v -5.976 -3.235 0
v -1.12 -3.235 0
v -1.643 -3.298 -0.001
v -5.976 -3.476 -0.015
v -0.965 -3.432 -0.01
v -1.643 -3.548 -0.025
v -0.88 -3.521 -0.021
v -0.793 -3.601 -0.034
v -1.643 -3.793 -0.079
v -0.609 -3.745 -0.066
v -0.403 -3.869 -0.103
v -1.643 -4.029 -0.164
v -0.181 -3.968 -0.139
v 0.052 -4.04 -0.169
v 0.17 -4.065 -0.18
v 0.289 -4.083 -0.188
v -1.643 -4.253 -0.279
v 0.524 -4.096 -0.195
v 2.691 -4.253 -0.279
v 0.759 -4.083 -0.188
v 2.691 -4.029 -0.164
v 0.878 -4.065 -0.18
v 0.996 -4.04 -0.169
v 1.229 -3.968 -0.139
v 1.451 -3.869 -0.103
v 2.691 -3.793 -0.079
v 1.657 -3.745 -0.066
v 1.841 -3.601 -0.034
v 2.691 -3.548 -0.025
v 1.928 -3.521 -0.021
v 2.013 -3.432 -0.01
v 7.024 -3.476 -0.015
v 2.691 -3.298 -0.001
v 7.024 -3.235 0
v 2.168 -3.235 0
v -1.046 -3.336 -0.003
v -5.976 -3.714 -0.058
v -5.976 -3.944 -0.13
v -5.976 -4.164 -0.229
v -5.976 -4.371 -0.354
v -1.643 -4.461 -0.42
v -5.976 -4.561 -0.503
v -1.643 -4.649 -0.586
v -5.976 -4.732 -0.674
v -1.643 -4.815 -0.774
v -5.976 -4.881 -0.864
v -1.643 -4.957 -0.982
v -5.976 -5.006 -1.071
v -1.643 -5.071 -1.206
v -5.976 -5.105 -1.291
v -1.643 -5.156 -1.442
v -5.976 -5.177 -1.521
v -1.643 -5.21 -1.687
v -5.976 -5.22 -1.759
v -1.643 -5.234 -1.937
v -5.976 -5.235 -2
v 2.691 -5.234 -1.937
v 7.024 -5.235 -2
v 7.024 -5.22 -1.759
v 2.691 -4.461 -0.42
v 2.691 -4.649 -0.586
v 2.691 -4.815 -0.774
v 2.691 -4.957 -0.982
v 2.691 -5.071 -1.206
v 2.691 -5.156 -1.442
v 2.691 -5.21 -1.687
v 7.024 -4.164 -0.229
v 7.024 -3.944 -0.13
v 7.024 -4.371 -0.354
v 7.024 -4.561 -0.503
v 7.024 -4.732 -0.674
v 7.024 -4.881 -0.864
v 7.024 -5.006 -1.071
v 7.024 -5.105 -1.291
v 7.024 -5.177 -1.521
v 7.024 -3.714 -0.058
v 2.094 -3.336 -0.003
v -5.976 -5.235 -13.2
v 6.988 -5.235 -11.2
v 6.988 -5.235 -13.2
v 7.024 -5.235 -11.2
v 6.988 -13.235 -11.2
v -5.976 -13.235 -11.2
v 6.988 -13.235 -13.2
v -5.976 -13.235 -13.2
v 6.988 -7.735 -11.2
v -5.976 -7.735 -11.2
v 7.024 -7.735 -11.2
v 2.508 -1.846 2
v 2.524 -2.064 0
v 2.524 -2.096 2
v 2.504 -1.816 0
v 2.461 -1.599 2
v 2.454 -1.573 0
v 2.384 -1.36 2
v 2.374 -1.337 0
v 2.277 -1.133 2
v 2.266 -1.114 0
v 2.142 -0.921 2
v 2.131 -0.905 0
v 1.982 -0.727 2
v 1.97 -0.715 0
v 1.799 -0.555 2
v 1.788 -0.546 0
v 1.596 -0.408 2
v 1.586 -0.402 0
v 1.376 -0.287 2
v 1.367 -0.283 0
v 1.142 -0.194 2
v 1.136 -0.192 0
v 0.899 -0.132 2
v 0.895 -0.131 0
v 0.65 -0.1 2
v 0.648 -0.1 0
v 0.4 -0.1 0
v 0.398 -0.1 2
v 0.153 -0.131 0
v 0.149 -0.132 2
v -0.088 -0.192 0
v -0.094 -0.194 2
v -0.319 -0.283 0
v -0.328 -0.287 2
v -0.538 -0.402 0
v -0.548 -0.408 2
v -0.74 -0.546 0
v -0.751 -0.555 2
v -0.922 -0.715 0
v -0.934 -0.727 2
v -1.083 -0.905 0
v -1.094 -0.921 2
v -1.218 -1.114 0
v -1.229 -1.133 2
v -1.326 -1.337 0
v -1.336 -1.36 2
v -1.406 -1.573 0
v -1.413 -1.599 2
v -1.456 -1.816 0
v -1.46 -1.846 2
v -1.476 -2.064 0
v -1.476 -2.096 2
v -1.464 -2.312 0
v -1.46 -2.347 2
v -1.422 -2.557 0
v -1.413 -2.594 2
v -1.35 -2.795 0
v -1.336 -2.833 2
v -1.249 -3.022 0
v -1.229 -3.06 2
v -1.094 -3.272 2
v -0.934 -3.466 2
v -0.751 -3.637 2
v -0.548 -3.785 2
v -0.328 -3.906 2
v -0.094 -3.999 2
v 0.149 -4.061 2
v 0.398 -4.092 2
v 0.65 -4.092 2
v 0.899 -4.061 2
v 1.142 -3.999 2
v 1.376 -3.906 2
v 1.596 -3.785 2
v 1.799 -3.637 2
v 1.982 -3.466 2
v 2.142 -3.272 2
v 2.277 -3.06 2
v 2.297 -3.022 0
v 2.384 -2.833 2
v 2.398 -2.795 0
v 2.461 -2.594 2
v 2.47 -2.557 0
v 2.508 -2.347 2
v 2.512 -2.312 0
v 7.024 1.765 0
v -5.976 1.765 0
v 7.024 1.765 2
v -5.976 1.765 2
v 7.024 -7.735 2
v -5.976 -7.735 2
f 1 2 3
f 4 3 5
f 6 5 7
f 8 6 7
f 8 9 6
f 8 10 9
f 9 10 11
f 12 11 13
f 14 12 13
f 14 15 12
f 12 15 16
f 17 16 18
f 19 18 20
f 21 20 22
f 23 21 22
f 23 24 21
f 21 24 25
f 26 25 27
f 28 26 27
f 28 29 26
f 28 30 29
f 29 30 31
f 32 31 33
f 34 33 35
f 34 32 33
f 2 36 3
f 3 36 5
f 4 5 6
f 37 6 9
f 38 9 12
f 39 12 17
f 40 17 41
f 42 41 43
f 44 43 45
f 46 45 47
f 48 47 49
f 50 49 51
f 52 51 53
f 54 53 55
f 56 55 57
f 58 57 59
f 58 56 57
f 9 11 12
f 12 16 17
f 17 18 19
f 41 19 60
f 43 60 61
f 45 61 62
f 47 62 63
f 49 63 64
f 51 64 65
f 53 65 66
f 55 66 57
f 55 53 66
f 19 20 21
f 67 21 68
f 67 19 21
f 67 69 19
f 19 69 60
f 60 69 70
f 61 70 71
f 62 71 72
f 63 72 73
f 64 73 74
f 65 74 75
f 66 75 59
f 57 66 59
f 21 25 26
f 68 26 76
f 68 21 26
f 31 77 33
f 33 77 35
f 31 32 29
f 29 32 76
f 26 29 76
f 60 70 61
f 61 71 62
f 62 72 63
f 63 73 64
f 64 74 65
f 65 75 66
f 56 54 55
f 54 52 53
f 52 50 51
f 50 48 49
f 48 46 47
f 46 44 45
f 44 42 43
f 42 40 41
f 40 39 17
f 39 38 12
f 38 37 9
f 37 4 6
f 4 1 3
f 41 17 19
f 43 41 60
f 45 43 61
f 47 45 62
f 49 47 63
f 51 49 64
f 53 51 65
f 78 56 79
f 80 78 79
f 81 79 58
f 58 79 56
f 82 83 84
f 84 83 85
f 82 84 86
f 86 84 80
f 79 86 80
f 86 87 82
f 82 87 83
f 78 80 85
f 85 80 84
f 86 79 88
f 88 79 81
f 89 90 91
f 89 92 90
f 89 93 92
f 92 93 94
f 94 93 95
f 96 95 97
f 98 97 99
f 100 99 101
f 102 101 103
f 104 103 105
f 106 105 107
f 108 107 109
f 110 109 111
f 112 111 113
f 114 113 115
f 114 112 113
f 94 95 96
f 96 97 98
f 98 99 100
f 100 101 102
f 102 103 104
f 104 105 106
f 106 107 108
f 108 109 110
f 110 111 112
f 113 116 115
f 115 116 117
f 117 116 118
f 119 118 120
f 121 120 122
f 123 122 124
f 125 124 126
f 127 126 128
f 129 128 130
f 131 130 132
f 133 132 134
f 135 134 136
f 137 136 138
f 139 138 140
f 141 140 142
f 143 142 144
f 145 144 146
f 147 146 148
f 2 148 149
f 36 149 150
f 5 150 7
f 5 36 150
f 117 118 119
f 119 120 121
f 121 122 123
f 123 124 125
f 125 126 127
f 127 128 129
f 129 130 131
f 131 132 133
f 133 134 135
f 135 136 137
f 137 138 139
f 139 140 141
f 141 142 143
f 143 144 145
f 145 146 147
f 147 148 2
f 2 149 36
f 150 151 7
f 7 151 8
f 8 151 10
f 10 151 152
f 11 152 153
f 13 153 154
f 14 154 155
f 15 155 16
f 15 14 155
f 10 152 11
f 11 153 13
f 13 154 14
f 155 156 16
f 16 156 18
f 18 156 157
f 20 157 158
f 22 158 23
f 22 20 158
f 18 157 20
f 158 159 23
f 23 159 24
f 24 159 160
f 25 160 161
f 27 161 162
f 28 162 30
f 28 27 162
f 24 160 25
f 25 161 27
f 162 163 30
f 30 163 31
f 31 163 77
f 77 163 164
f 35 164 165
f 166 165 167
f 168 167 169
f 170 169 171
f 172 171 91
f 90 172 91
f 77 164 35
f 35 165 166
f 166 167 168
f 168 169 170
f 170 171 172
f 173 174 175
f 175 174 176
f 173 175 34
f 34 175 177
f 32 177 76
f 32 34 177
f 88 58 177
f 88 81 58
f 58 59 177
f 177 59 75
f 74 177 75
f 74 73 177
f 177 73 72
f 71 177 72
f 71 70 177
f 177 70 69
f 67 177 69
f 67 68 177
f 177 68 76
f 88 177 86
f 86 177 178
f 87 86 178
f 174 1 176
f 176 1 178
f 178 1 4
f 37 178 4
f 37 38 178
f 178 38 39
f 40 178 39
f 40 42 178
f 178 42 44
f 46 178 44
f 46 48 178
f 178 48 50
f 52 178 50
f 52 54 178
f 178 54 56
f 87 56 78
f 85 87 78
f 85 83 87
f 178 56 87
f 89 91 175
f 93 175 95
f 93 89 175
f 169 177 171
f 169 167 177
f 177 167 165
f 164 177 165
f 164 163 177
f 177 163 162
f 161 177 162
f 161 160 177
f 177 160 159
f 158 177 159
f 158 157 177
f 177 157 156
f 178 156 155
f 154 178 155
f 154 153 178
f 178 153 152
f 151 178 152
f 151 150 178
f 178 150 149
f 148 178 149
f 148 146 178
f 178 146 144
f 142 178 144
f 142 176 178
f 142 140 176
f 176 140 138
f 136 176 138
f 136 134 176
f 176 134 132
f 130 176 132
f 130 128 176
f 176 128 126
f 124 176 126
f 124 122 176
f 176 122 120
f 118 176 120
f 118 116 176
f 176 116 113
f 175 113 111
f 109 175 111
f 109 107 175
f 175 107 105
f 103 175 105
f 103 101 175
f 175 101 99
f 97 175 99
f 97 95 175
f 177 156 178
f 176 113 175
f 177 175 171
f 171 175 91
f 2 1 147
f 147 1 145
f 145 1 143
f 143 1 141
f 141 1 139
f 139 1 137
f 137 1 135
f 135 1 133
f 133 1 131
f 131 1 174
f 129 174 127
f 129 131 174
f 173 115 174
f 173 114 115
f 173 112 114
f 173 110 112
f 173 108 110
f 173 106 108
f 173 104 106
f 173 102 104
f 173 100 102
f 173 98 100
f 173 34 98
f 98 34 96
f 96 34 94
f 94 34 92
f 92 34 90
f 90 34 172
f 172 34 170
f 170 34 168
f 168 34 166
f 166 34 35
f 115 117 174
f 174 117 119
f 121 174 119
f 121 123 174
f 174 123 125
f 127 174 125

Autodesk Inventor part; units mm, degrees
ref_plane "YZ Plane" through (0, 0, 0) normal (1, 0, 0) x (0, 1, 0)
ref_plane "XZ Plane" through (0, 0, 0) normal (0, 1, 0) x (-1, 0, 0)
ref_plane "XY Plane" through (0, 0, 0) normal (0, 0, 1) x (1, 0, 0)
sketch "Sketch1" plane through (0, 0, 0) normal (0, 0, 1) x (1, 0, 0)
  line L0 (-5.976, 1.765) -> (7.024, 1.765)
  line L1 (7.024, 1.765) -> (7.024, -7.735)
  line L2 (7.024, -7.735) -> (-5.976, -7.735)
  line L3 (-5.976, -7.735) -> (-5.976, 1.765)
  line L4 (-5.976, -7.735) -> (7.024, -7.735)
  line L5 (7.024, -7.735) -> (7.024, -5.235)
  line L6 (7.024, -5.235) -> (-5.976, -5.235)
  line L7 (-5.976, -5.235) -> (-5.976, -7.735)
  circle A0 centre (0.524, -2.0964) radius 2
  point P0 (0, 0)
  dimension "d0" = 9.5
  dimension "d1" = 13
  dimension "d2" = 2.5
  dimension "d3" = 4
  dimension "d4" = 6.5
  dimension "d5" = 3.8614
extrude "Extrusion1" add sketch "Sketch1" along normal blind 2
extrude "Extrusion2" add sketch "Sketch1" against normal blind 11.2 contours L6 L1 L2 L3
sketch "Sketch2" plane through (0, 0, -11.2) normal (0, 0, -1) x (-1, 0, 0)
  line L0 (-6.988, -5.235) -> (5.976, -5.235)
  line L1 (5.976, -5.235) -> (5.976, -13.235)
  line L2 (5.976, -13.235) -> (-6.988, -13.235)
  line L3 (-6.988, -13.235) -> (-6.988, -5.235)
  line L4 (5.976, -7.735) -> (5.976, -5.235) projected
  line L5 (5.976, -5.235) -> (-7.024, -5.235) projected
  point P0 (0, 0)
  dimension "d10" = 0
  dimension "d11" = 8
  dimension "d12" = 0
extrude "Extrusion3" add sketch "Sketch2" along normal blind 2
fillet "Fillet1" radius 2 1 edges at (0.524, -5.235, 0)
properties part number "ethernet bracket support"
